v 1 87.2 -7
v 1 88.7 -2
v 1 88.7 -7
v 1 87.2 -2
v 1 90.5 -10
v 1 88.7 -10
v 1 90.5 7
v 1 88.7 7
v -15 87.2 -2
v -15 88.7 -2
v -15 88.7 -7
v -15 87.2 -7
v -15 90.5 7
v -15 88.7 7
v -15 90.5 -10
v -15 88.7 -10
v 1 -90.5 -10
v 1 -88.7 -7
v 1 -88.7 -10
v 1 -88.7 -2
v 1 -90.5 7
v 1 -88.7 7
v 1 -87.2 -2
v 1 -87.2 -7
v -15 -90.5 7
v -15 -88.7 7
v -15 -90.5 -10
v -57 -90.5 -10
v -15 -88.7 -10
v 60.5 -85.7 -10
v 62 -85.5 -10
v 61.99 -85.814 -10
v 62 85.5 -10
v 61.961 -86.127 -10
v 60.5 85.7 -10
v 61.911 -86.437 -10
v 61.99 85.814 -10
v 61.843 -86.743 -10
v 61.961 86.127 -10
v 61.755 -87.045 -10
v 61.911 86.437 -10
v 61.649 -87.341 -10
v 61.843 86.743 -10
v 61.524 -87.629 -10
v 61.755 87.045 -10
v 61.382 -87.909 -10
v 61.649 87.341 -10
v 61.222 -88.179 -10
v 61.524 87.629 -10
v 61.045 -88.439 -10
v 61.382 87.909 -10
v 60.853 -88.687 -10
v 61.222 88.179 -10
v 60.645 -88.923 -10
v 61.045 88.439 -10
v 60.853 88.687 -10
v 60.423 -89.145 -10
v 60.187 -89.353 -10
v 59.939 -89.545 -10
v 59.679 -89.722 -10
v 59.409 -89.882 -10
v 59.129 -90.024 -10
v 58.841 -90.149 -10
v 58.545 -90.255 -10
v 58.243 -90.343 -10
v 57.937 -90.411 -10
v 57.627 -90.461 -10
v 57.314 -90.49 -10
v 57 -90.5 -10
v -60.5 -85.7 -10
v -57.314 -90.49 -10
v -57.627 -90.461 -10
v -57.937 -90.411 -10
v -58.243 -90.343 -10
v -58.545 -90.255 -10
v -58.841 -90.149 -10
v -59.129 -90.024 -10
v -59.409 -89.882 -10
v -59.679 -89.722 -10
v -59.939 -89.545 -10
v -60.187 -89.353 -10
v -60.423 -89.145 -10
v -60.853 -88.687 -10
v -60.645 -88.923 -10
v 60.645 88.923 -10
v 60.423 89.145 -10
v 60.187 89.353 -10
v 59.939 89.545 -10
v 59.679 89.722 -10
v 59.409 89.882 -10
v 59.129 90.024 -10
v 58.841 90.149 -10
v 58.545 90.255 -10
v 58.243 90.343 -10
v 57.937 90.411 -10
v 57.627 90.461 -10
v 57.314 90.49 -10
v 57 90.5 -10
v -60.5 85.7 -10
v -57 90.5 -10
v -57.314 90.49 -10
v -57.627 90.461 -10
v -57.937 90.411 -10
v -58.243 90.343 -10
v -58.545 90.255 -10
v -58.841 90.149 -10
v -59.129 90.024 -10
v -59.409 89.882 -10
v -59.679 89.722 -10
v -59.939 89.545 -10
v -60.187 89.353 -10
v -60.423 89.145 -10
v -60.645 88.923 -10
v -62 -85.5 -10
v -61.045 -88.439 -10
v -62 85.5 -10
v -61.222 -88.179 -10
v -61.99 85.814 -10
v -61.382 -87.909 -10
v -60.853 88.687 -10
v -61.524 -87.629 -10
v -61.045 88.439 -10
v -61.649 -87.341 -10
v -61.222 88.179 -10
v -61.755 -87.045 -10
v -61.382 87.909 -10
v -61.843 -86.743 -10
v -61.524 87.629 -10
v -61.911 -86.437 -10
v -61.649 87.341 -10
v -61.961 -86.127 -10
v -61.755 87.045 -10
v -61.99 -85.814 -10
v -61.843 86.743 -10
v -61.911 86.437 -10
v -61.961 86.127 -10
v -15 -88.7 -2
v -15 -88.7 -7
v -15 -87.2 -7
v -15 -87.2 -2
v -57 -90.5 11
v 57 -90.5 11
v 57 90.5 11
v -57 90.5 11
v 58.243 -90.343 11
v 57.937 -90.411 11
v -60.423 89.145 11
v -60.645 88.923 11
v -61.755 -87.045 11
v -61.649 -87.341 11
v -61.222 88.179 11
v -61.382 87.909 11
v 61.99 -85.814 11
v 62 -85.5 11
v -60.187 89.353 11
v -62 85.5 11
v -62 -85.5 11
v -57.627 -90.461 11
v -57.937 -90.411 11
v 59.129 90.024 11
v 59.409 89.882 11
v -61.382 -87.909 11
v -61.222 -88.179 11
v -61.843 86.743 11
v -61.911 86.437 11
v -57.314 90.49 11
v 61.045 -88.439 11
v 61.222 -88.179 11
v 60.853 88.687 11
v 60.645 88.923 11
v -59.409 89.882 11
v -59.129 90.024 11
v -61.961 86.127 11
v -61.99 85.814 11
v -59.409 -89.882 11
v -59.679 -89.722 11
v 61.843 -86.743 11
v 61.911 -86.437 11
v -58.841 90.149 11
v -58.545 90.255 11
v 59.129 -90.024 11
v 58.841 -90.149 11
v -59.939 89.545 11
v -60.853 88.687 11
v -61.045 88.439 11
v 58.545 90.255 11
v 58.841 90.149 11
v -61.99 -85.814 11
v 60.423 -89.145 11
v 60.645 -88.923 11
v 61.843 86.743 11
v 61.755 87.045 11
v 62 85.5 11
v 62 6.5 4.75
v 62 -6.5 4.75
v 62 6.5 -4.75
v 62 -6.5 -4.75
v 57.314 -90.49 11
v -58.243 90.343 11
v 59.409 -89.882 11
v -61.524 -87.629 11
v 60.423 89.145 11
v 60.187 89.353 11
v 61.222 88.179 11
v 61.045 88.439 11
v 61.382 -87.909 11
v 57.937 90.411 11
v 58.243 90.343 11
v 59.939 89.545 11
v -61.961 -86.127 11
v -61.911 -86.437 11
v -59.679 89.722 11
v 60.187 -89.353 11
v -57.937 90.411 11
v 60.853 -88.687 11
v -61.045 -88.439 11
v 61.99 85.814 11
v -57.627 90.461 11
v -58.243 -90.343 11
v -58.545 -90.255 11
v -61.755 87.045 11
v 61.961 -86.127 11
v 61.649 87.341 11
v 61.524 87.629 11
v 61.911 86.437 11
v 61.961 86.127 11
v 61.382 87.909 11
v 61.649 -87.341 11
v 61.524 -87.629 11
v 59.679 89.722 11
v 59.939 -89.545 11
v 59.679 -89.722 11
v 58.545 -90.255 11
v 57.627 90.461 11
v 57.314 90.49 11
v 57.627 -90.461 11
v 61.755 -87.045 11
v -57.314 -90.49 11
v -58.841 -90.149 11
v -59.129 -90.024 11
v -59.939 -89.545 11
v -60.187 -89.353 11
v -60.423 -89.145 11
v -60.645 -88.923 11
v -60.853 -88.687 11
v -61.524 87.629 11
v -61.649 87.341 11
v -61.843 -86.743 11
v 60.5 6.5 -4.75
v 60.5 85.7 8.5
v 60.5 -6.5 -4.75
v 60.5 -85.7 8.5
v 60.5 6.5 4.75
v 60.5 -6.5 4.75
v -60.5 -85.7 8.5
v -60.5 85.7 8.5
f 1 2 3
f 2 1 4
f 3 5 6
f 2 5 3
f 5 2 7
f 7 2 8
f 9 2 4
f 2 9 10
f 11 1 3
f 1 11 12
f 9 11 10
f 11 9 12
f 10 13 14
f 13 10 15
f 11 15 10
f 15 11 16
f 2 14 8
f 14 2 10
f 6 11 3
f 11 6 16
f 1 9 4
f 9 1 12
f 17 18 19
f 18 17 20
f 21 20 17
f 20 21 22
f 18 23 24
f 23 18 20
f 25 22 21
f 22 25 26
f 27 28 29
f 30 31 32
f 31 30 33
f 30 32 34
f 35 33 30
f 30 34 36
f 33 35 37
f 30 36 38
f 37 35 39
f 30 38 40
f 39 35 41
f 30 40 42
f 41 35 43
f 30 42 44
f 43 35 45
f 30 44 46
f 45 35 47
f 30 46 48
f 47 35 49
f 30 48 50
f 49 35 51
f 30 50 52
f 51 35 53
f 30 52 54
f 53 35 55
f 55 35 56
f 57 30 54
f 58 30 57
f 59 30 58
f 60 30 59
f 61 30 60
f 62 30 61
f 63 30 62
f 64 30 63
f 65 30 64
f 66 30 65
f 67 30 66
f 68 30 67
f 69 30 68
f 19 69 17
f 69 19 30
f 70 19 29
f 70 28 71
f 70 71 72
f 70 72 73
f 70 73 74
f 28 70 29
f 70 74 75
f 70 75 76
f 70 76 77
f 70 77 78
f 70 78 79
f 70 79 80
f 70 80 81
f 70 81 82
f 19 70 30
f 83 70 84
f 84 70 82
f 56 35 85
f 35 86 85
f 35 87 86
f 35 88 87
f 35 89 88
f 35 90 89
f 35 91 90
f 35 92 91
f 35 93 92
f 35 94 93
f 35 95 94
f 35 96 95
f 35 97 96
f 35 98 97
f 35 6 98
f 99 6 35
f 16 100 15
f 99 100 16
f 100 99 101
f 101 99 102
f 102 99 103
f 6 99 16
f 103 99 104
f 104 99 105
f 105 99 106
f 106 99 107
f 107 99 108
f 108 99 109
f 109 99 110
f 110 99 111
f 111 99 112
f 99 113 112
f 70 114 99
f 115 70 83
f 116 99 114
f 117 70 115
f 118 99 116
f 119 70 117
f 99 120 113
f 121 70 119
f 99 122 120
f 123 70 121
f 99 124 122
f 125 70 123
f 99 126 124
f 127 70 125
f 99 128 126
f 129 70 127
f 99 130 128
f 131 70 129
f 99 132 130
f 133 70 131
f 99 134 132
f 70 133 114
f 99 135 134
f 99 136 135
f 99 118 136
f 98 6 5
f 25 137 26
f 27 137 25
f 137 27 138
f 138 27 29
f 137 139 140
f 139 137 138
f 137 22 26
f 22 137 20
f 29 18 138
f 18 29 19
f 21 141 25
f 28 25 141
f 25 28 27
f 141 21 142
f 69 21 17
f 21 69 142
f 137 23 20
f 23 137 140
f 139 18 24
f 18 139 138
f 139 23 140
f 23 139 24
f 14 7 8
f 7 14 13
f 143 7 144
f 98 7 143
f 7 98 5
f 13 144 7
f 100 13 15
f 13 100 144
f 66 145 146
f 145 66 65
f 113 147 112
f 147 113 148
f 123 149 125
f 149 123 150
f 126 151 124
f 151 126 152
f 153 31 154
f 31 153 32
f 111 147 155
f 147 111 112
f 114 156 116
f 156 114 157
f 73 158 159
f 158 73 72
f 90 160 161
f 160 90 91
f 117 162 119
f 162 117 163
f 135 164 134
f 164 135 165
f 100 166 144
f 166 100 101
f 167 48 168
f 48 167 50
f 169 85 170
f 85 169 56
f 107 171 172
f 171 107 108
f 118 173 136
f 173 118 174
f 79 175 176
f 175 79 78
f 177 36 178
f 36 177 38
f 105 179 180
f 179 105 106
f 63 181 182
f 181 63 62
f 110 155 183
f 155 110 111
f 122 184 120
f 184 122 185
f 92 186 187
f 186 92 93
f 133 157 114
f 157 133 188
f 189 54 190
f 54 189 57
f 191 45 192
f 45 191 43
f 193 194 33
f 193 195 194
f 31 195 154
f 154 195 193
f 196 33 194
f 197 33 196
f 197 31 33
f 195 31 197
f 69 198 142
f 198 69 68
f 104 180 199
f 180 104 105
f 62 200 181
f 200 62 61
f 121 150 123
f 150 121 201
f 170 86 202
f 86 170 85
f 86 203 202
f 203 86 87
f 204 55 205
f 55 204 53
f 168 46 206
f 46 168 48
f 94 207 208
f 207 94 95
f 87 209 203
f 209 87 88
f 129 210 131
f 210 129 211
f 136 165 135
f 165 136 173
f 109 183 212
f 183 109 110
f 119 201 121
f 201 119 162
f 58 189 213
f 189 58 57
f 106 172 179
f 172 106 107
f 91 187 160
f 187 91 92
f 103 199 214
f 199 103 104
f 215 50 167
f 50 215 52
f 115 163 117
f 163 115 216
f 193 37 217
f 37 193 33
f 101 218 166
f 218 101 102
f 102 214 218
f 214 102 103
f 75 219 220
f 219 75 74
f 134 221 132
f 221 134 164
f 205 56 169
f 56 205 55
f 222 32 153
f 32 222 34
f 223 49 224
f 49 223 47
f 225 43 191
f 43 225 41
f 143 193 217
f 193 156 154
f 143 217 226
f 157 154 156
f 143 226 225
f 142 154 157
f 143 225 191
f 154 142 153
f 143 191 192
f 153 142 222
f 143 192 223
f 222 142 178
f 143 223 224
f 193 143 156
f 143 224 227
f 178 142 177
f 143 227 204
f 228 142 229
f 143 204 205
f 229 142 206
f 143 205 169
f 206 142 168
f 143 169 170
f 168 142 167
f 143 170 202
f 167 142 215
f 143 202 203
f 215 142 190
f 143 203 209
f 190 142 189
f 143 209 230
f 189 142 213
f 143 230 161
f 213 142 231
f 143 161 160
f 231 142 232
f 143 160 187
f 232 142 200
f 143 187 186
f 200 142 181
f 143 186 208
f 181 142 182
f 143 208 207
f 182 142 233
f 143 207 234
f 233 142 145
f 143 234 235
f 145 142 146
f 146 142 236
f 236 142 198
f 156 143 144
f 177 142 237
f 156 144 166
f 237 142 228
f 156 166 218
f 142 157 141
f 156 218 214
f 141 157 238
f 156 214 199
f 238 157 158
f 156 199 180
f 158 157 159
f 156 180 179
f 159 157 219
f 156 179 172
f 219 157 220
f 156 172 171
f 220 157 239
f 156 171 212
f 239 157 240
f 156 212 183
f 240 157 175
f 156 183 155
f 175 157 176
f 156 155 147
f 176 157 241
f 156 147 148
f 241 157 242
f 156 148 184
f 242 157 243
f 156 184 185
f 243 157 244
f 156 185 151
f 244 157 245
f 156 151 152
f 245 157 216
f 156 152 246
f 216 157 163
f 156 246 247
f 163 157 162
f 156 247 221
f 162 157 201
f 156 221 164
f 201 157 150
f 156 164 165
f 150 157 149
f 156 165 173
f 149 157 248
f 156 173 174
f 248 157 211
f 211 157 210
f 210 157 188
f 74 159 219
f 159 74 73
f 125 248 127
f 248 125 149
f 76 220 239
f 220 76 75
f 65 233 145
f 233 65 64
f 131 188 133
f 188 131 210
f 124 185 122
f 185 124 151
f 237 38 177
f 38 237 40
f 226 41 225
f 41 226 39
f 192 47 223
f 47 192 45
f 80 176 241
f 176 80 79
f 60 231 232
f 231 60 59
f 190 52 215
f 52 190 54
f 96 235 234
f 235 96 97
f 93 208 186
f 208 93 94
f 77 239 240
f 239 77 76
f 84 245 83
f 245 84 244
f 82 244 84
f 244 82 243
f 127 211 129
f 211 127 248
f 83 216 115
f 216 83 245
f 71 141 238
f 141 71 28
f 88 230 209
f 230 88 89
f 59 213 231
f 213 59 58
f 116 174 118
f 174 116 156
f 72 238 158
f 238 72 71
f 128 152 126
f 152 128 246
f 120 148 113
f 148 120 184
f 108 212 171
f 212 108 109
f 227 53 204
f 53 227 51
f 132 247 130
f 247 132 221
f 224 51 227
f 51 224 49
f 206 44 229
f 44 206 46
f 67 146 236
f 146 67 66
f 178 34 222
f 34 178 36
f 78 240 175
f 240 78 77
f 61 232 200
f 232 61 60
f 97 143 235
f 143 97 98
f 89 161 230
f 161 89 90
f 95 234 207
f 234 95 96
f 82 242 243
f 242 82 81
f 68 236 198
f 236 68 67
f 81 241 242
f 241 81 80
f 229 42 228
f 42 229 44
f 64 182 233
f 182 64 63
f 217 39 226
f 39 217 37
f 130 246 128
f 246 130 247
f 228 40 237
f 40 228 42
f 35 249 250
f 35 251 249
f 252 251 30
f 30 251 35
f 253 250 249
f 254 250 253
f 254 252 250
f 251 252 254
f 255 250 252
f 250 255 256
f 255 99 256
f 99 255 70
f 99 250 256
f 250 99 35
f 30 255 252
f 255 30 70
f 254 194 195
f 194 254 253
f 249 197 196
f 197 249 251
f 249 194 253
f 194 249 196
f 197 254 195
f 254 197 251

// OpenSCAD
/*
    Move your ONT elsewhere.
    Copyright (C) 2023 FloppyDisk
    https://github.com/flpydsk/ONTFibreBox.git

    This program is free software: you can redistribute it and/or modify
    it under the terms of the GNU General Public License as published by
    the Free Software Foundation, either version 3 of the License, or
    (at your option) any later version.

    This program is distributed in the hope that it will be useful,
    but WITHOUT ANY WARRANTY; without even the implied warranty of
    MERCHANTABILITY or FITNESS FOR A PARTICULAR PURPOSE.  See the
    GNU General Public License for more details.

    You should have received a copy of the GNU General Public License
    along with this program.  If not, see <https://www.gnu.org/licenses/>.
*/

//Change me if you have multiple ONT's
DoYouWant2=false;

//Do not change stuff below this line
$fn=100;
Length=124;
Width=178+3;
Hight=20; //33
WallThickness=1.5;
Roundness=10;
ClipX=16;
ClipY=1.8;
ClipZ=17;
Offset=-7;
ClipFeatureX=16;
ClipFeatureY=1.5;
ClipFeatureZ=5;
ClipFeatureOffsetZ=3;
PlugWidth=13;
PlugHight=9.5;

main();

module main() {
  difference() {
    minkowski() {
      cube([Length-Roundness,Width-Roundness,Hight],center=true);
      cylinder(d=Roundness);
    }
    translate([0, 0, -WallThickness/2]) {
      cube([Length-WallThickness*2,Width-2*(ClipFeatureY+ClipY)-2*WallThickness,Hight-WallThickness],center=true);
    }
  translate([Offset, 0, 0]) {
    union(){
      translate([0, -ClipFeatureY/2+Width/2-ClipY, ClipFeatureZ/2-Hight/2+ClipFeatureOffsetZ]) {
        cube([ClipFeatureX,ClipFeatureY,ClipFeatureZ],center=true);
      }
      translate([0, -Width/2+ClipY/2, (ClipZ/2)-Hight/2]) {
        cube([ClipX,ClipY,ClipZ],center=true);
      }
    }
    union(){
      translate([0, ClipFeatureY/2-Width/2+ClipY, ClipFeatureZ/2-Hight/2+ClipFeatureOffsetZ]) {
        cube([ClipFeatureX,ClipFeatureY,ClipFeatureZ],center=true);
      }
      translate([0, Width/2-ClipY/2, (ClipZ/2)-Hight/2]) {
        cube([ClipX,ClipY,ClipZ],center=true);
      }
    }
  }

    if(DoYouWant2) {
      translate([Length/2,PlugWidth*2.5, 0]) {
        cube([WallThickness*4,PlugWidth,PlugHight],center=true);
      }
      translate([Length/2,-PlugWidth*2.5, 0]) {
        cube([WallThickness*4,PlugWidth,PlugHight],center=true);
      }
    } else {
      translate([Length/2, 0, 0]) {
        cube([WallThickness*4,PlugWidth,PlugHight],center=true);
      }
    }
  }
}
